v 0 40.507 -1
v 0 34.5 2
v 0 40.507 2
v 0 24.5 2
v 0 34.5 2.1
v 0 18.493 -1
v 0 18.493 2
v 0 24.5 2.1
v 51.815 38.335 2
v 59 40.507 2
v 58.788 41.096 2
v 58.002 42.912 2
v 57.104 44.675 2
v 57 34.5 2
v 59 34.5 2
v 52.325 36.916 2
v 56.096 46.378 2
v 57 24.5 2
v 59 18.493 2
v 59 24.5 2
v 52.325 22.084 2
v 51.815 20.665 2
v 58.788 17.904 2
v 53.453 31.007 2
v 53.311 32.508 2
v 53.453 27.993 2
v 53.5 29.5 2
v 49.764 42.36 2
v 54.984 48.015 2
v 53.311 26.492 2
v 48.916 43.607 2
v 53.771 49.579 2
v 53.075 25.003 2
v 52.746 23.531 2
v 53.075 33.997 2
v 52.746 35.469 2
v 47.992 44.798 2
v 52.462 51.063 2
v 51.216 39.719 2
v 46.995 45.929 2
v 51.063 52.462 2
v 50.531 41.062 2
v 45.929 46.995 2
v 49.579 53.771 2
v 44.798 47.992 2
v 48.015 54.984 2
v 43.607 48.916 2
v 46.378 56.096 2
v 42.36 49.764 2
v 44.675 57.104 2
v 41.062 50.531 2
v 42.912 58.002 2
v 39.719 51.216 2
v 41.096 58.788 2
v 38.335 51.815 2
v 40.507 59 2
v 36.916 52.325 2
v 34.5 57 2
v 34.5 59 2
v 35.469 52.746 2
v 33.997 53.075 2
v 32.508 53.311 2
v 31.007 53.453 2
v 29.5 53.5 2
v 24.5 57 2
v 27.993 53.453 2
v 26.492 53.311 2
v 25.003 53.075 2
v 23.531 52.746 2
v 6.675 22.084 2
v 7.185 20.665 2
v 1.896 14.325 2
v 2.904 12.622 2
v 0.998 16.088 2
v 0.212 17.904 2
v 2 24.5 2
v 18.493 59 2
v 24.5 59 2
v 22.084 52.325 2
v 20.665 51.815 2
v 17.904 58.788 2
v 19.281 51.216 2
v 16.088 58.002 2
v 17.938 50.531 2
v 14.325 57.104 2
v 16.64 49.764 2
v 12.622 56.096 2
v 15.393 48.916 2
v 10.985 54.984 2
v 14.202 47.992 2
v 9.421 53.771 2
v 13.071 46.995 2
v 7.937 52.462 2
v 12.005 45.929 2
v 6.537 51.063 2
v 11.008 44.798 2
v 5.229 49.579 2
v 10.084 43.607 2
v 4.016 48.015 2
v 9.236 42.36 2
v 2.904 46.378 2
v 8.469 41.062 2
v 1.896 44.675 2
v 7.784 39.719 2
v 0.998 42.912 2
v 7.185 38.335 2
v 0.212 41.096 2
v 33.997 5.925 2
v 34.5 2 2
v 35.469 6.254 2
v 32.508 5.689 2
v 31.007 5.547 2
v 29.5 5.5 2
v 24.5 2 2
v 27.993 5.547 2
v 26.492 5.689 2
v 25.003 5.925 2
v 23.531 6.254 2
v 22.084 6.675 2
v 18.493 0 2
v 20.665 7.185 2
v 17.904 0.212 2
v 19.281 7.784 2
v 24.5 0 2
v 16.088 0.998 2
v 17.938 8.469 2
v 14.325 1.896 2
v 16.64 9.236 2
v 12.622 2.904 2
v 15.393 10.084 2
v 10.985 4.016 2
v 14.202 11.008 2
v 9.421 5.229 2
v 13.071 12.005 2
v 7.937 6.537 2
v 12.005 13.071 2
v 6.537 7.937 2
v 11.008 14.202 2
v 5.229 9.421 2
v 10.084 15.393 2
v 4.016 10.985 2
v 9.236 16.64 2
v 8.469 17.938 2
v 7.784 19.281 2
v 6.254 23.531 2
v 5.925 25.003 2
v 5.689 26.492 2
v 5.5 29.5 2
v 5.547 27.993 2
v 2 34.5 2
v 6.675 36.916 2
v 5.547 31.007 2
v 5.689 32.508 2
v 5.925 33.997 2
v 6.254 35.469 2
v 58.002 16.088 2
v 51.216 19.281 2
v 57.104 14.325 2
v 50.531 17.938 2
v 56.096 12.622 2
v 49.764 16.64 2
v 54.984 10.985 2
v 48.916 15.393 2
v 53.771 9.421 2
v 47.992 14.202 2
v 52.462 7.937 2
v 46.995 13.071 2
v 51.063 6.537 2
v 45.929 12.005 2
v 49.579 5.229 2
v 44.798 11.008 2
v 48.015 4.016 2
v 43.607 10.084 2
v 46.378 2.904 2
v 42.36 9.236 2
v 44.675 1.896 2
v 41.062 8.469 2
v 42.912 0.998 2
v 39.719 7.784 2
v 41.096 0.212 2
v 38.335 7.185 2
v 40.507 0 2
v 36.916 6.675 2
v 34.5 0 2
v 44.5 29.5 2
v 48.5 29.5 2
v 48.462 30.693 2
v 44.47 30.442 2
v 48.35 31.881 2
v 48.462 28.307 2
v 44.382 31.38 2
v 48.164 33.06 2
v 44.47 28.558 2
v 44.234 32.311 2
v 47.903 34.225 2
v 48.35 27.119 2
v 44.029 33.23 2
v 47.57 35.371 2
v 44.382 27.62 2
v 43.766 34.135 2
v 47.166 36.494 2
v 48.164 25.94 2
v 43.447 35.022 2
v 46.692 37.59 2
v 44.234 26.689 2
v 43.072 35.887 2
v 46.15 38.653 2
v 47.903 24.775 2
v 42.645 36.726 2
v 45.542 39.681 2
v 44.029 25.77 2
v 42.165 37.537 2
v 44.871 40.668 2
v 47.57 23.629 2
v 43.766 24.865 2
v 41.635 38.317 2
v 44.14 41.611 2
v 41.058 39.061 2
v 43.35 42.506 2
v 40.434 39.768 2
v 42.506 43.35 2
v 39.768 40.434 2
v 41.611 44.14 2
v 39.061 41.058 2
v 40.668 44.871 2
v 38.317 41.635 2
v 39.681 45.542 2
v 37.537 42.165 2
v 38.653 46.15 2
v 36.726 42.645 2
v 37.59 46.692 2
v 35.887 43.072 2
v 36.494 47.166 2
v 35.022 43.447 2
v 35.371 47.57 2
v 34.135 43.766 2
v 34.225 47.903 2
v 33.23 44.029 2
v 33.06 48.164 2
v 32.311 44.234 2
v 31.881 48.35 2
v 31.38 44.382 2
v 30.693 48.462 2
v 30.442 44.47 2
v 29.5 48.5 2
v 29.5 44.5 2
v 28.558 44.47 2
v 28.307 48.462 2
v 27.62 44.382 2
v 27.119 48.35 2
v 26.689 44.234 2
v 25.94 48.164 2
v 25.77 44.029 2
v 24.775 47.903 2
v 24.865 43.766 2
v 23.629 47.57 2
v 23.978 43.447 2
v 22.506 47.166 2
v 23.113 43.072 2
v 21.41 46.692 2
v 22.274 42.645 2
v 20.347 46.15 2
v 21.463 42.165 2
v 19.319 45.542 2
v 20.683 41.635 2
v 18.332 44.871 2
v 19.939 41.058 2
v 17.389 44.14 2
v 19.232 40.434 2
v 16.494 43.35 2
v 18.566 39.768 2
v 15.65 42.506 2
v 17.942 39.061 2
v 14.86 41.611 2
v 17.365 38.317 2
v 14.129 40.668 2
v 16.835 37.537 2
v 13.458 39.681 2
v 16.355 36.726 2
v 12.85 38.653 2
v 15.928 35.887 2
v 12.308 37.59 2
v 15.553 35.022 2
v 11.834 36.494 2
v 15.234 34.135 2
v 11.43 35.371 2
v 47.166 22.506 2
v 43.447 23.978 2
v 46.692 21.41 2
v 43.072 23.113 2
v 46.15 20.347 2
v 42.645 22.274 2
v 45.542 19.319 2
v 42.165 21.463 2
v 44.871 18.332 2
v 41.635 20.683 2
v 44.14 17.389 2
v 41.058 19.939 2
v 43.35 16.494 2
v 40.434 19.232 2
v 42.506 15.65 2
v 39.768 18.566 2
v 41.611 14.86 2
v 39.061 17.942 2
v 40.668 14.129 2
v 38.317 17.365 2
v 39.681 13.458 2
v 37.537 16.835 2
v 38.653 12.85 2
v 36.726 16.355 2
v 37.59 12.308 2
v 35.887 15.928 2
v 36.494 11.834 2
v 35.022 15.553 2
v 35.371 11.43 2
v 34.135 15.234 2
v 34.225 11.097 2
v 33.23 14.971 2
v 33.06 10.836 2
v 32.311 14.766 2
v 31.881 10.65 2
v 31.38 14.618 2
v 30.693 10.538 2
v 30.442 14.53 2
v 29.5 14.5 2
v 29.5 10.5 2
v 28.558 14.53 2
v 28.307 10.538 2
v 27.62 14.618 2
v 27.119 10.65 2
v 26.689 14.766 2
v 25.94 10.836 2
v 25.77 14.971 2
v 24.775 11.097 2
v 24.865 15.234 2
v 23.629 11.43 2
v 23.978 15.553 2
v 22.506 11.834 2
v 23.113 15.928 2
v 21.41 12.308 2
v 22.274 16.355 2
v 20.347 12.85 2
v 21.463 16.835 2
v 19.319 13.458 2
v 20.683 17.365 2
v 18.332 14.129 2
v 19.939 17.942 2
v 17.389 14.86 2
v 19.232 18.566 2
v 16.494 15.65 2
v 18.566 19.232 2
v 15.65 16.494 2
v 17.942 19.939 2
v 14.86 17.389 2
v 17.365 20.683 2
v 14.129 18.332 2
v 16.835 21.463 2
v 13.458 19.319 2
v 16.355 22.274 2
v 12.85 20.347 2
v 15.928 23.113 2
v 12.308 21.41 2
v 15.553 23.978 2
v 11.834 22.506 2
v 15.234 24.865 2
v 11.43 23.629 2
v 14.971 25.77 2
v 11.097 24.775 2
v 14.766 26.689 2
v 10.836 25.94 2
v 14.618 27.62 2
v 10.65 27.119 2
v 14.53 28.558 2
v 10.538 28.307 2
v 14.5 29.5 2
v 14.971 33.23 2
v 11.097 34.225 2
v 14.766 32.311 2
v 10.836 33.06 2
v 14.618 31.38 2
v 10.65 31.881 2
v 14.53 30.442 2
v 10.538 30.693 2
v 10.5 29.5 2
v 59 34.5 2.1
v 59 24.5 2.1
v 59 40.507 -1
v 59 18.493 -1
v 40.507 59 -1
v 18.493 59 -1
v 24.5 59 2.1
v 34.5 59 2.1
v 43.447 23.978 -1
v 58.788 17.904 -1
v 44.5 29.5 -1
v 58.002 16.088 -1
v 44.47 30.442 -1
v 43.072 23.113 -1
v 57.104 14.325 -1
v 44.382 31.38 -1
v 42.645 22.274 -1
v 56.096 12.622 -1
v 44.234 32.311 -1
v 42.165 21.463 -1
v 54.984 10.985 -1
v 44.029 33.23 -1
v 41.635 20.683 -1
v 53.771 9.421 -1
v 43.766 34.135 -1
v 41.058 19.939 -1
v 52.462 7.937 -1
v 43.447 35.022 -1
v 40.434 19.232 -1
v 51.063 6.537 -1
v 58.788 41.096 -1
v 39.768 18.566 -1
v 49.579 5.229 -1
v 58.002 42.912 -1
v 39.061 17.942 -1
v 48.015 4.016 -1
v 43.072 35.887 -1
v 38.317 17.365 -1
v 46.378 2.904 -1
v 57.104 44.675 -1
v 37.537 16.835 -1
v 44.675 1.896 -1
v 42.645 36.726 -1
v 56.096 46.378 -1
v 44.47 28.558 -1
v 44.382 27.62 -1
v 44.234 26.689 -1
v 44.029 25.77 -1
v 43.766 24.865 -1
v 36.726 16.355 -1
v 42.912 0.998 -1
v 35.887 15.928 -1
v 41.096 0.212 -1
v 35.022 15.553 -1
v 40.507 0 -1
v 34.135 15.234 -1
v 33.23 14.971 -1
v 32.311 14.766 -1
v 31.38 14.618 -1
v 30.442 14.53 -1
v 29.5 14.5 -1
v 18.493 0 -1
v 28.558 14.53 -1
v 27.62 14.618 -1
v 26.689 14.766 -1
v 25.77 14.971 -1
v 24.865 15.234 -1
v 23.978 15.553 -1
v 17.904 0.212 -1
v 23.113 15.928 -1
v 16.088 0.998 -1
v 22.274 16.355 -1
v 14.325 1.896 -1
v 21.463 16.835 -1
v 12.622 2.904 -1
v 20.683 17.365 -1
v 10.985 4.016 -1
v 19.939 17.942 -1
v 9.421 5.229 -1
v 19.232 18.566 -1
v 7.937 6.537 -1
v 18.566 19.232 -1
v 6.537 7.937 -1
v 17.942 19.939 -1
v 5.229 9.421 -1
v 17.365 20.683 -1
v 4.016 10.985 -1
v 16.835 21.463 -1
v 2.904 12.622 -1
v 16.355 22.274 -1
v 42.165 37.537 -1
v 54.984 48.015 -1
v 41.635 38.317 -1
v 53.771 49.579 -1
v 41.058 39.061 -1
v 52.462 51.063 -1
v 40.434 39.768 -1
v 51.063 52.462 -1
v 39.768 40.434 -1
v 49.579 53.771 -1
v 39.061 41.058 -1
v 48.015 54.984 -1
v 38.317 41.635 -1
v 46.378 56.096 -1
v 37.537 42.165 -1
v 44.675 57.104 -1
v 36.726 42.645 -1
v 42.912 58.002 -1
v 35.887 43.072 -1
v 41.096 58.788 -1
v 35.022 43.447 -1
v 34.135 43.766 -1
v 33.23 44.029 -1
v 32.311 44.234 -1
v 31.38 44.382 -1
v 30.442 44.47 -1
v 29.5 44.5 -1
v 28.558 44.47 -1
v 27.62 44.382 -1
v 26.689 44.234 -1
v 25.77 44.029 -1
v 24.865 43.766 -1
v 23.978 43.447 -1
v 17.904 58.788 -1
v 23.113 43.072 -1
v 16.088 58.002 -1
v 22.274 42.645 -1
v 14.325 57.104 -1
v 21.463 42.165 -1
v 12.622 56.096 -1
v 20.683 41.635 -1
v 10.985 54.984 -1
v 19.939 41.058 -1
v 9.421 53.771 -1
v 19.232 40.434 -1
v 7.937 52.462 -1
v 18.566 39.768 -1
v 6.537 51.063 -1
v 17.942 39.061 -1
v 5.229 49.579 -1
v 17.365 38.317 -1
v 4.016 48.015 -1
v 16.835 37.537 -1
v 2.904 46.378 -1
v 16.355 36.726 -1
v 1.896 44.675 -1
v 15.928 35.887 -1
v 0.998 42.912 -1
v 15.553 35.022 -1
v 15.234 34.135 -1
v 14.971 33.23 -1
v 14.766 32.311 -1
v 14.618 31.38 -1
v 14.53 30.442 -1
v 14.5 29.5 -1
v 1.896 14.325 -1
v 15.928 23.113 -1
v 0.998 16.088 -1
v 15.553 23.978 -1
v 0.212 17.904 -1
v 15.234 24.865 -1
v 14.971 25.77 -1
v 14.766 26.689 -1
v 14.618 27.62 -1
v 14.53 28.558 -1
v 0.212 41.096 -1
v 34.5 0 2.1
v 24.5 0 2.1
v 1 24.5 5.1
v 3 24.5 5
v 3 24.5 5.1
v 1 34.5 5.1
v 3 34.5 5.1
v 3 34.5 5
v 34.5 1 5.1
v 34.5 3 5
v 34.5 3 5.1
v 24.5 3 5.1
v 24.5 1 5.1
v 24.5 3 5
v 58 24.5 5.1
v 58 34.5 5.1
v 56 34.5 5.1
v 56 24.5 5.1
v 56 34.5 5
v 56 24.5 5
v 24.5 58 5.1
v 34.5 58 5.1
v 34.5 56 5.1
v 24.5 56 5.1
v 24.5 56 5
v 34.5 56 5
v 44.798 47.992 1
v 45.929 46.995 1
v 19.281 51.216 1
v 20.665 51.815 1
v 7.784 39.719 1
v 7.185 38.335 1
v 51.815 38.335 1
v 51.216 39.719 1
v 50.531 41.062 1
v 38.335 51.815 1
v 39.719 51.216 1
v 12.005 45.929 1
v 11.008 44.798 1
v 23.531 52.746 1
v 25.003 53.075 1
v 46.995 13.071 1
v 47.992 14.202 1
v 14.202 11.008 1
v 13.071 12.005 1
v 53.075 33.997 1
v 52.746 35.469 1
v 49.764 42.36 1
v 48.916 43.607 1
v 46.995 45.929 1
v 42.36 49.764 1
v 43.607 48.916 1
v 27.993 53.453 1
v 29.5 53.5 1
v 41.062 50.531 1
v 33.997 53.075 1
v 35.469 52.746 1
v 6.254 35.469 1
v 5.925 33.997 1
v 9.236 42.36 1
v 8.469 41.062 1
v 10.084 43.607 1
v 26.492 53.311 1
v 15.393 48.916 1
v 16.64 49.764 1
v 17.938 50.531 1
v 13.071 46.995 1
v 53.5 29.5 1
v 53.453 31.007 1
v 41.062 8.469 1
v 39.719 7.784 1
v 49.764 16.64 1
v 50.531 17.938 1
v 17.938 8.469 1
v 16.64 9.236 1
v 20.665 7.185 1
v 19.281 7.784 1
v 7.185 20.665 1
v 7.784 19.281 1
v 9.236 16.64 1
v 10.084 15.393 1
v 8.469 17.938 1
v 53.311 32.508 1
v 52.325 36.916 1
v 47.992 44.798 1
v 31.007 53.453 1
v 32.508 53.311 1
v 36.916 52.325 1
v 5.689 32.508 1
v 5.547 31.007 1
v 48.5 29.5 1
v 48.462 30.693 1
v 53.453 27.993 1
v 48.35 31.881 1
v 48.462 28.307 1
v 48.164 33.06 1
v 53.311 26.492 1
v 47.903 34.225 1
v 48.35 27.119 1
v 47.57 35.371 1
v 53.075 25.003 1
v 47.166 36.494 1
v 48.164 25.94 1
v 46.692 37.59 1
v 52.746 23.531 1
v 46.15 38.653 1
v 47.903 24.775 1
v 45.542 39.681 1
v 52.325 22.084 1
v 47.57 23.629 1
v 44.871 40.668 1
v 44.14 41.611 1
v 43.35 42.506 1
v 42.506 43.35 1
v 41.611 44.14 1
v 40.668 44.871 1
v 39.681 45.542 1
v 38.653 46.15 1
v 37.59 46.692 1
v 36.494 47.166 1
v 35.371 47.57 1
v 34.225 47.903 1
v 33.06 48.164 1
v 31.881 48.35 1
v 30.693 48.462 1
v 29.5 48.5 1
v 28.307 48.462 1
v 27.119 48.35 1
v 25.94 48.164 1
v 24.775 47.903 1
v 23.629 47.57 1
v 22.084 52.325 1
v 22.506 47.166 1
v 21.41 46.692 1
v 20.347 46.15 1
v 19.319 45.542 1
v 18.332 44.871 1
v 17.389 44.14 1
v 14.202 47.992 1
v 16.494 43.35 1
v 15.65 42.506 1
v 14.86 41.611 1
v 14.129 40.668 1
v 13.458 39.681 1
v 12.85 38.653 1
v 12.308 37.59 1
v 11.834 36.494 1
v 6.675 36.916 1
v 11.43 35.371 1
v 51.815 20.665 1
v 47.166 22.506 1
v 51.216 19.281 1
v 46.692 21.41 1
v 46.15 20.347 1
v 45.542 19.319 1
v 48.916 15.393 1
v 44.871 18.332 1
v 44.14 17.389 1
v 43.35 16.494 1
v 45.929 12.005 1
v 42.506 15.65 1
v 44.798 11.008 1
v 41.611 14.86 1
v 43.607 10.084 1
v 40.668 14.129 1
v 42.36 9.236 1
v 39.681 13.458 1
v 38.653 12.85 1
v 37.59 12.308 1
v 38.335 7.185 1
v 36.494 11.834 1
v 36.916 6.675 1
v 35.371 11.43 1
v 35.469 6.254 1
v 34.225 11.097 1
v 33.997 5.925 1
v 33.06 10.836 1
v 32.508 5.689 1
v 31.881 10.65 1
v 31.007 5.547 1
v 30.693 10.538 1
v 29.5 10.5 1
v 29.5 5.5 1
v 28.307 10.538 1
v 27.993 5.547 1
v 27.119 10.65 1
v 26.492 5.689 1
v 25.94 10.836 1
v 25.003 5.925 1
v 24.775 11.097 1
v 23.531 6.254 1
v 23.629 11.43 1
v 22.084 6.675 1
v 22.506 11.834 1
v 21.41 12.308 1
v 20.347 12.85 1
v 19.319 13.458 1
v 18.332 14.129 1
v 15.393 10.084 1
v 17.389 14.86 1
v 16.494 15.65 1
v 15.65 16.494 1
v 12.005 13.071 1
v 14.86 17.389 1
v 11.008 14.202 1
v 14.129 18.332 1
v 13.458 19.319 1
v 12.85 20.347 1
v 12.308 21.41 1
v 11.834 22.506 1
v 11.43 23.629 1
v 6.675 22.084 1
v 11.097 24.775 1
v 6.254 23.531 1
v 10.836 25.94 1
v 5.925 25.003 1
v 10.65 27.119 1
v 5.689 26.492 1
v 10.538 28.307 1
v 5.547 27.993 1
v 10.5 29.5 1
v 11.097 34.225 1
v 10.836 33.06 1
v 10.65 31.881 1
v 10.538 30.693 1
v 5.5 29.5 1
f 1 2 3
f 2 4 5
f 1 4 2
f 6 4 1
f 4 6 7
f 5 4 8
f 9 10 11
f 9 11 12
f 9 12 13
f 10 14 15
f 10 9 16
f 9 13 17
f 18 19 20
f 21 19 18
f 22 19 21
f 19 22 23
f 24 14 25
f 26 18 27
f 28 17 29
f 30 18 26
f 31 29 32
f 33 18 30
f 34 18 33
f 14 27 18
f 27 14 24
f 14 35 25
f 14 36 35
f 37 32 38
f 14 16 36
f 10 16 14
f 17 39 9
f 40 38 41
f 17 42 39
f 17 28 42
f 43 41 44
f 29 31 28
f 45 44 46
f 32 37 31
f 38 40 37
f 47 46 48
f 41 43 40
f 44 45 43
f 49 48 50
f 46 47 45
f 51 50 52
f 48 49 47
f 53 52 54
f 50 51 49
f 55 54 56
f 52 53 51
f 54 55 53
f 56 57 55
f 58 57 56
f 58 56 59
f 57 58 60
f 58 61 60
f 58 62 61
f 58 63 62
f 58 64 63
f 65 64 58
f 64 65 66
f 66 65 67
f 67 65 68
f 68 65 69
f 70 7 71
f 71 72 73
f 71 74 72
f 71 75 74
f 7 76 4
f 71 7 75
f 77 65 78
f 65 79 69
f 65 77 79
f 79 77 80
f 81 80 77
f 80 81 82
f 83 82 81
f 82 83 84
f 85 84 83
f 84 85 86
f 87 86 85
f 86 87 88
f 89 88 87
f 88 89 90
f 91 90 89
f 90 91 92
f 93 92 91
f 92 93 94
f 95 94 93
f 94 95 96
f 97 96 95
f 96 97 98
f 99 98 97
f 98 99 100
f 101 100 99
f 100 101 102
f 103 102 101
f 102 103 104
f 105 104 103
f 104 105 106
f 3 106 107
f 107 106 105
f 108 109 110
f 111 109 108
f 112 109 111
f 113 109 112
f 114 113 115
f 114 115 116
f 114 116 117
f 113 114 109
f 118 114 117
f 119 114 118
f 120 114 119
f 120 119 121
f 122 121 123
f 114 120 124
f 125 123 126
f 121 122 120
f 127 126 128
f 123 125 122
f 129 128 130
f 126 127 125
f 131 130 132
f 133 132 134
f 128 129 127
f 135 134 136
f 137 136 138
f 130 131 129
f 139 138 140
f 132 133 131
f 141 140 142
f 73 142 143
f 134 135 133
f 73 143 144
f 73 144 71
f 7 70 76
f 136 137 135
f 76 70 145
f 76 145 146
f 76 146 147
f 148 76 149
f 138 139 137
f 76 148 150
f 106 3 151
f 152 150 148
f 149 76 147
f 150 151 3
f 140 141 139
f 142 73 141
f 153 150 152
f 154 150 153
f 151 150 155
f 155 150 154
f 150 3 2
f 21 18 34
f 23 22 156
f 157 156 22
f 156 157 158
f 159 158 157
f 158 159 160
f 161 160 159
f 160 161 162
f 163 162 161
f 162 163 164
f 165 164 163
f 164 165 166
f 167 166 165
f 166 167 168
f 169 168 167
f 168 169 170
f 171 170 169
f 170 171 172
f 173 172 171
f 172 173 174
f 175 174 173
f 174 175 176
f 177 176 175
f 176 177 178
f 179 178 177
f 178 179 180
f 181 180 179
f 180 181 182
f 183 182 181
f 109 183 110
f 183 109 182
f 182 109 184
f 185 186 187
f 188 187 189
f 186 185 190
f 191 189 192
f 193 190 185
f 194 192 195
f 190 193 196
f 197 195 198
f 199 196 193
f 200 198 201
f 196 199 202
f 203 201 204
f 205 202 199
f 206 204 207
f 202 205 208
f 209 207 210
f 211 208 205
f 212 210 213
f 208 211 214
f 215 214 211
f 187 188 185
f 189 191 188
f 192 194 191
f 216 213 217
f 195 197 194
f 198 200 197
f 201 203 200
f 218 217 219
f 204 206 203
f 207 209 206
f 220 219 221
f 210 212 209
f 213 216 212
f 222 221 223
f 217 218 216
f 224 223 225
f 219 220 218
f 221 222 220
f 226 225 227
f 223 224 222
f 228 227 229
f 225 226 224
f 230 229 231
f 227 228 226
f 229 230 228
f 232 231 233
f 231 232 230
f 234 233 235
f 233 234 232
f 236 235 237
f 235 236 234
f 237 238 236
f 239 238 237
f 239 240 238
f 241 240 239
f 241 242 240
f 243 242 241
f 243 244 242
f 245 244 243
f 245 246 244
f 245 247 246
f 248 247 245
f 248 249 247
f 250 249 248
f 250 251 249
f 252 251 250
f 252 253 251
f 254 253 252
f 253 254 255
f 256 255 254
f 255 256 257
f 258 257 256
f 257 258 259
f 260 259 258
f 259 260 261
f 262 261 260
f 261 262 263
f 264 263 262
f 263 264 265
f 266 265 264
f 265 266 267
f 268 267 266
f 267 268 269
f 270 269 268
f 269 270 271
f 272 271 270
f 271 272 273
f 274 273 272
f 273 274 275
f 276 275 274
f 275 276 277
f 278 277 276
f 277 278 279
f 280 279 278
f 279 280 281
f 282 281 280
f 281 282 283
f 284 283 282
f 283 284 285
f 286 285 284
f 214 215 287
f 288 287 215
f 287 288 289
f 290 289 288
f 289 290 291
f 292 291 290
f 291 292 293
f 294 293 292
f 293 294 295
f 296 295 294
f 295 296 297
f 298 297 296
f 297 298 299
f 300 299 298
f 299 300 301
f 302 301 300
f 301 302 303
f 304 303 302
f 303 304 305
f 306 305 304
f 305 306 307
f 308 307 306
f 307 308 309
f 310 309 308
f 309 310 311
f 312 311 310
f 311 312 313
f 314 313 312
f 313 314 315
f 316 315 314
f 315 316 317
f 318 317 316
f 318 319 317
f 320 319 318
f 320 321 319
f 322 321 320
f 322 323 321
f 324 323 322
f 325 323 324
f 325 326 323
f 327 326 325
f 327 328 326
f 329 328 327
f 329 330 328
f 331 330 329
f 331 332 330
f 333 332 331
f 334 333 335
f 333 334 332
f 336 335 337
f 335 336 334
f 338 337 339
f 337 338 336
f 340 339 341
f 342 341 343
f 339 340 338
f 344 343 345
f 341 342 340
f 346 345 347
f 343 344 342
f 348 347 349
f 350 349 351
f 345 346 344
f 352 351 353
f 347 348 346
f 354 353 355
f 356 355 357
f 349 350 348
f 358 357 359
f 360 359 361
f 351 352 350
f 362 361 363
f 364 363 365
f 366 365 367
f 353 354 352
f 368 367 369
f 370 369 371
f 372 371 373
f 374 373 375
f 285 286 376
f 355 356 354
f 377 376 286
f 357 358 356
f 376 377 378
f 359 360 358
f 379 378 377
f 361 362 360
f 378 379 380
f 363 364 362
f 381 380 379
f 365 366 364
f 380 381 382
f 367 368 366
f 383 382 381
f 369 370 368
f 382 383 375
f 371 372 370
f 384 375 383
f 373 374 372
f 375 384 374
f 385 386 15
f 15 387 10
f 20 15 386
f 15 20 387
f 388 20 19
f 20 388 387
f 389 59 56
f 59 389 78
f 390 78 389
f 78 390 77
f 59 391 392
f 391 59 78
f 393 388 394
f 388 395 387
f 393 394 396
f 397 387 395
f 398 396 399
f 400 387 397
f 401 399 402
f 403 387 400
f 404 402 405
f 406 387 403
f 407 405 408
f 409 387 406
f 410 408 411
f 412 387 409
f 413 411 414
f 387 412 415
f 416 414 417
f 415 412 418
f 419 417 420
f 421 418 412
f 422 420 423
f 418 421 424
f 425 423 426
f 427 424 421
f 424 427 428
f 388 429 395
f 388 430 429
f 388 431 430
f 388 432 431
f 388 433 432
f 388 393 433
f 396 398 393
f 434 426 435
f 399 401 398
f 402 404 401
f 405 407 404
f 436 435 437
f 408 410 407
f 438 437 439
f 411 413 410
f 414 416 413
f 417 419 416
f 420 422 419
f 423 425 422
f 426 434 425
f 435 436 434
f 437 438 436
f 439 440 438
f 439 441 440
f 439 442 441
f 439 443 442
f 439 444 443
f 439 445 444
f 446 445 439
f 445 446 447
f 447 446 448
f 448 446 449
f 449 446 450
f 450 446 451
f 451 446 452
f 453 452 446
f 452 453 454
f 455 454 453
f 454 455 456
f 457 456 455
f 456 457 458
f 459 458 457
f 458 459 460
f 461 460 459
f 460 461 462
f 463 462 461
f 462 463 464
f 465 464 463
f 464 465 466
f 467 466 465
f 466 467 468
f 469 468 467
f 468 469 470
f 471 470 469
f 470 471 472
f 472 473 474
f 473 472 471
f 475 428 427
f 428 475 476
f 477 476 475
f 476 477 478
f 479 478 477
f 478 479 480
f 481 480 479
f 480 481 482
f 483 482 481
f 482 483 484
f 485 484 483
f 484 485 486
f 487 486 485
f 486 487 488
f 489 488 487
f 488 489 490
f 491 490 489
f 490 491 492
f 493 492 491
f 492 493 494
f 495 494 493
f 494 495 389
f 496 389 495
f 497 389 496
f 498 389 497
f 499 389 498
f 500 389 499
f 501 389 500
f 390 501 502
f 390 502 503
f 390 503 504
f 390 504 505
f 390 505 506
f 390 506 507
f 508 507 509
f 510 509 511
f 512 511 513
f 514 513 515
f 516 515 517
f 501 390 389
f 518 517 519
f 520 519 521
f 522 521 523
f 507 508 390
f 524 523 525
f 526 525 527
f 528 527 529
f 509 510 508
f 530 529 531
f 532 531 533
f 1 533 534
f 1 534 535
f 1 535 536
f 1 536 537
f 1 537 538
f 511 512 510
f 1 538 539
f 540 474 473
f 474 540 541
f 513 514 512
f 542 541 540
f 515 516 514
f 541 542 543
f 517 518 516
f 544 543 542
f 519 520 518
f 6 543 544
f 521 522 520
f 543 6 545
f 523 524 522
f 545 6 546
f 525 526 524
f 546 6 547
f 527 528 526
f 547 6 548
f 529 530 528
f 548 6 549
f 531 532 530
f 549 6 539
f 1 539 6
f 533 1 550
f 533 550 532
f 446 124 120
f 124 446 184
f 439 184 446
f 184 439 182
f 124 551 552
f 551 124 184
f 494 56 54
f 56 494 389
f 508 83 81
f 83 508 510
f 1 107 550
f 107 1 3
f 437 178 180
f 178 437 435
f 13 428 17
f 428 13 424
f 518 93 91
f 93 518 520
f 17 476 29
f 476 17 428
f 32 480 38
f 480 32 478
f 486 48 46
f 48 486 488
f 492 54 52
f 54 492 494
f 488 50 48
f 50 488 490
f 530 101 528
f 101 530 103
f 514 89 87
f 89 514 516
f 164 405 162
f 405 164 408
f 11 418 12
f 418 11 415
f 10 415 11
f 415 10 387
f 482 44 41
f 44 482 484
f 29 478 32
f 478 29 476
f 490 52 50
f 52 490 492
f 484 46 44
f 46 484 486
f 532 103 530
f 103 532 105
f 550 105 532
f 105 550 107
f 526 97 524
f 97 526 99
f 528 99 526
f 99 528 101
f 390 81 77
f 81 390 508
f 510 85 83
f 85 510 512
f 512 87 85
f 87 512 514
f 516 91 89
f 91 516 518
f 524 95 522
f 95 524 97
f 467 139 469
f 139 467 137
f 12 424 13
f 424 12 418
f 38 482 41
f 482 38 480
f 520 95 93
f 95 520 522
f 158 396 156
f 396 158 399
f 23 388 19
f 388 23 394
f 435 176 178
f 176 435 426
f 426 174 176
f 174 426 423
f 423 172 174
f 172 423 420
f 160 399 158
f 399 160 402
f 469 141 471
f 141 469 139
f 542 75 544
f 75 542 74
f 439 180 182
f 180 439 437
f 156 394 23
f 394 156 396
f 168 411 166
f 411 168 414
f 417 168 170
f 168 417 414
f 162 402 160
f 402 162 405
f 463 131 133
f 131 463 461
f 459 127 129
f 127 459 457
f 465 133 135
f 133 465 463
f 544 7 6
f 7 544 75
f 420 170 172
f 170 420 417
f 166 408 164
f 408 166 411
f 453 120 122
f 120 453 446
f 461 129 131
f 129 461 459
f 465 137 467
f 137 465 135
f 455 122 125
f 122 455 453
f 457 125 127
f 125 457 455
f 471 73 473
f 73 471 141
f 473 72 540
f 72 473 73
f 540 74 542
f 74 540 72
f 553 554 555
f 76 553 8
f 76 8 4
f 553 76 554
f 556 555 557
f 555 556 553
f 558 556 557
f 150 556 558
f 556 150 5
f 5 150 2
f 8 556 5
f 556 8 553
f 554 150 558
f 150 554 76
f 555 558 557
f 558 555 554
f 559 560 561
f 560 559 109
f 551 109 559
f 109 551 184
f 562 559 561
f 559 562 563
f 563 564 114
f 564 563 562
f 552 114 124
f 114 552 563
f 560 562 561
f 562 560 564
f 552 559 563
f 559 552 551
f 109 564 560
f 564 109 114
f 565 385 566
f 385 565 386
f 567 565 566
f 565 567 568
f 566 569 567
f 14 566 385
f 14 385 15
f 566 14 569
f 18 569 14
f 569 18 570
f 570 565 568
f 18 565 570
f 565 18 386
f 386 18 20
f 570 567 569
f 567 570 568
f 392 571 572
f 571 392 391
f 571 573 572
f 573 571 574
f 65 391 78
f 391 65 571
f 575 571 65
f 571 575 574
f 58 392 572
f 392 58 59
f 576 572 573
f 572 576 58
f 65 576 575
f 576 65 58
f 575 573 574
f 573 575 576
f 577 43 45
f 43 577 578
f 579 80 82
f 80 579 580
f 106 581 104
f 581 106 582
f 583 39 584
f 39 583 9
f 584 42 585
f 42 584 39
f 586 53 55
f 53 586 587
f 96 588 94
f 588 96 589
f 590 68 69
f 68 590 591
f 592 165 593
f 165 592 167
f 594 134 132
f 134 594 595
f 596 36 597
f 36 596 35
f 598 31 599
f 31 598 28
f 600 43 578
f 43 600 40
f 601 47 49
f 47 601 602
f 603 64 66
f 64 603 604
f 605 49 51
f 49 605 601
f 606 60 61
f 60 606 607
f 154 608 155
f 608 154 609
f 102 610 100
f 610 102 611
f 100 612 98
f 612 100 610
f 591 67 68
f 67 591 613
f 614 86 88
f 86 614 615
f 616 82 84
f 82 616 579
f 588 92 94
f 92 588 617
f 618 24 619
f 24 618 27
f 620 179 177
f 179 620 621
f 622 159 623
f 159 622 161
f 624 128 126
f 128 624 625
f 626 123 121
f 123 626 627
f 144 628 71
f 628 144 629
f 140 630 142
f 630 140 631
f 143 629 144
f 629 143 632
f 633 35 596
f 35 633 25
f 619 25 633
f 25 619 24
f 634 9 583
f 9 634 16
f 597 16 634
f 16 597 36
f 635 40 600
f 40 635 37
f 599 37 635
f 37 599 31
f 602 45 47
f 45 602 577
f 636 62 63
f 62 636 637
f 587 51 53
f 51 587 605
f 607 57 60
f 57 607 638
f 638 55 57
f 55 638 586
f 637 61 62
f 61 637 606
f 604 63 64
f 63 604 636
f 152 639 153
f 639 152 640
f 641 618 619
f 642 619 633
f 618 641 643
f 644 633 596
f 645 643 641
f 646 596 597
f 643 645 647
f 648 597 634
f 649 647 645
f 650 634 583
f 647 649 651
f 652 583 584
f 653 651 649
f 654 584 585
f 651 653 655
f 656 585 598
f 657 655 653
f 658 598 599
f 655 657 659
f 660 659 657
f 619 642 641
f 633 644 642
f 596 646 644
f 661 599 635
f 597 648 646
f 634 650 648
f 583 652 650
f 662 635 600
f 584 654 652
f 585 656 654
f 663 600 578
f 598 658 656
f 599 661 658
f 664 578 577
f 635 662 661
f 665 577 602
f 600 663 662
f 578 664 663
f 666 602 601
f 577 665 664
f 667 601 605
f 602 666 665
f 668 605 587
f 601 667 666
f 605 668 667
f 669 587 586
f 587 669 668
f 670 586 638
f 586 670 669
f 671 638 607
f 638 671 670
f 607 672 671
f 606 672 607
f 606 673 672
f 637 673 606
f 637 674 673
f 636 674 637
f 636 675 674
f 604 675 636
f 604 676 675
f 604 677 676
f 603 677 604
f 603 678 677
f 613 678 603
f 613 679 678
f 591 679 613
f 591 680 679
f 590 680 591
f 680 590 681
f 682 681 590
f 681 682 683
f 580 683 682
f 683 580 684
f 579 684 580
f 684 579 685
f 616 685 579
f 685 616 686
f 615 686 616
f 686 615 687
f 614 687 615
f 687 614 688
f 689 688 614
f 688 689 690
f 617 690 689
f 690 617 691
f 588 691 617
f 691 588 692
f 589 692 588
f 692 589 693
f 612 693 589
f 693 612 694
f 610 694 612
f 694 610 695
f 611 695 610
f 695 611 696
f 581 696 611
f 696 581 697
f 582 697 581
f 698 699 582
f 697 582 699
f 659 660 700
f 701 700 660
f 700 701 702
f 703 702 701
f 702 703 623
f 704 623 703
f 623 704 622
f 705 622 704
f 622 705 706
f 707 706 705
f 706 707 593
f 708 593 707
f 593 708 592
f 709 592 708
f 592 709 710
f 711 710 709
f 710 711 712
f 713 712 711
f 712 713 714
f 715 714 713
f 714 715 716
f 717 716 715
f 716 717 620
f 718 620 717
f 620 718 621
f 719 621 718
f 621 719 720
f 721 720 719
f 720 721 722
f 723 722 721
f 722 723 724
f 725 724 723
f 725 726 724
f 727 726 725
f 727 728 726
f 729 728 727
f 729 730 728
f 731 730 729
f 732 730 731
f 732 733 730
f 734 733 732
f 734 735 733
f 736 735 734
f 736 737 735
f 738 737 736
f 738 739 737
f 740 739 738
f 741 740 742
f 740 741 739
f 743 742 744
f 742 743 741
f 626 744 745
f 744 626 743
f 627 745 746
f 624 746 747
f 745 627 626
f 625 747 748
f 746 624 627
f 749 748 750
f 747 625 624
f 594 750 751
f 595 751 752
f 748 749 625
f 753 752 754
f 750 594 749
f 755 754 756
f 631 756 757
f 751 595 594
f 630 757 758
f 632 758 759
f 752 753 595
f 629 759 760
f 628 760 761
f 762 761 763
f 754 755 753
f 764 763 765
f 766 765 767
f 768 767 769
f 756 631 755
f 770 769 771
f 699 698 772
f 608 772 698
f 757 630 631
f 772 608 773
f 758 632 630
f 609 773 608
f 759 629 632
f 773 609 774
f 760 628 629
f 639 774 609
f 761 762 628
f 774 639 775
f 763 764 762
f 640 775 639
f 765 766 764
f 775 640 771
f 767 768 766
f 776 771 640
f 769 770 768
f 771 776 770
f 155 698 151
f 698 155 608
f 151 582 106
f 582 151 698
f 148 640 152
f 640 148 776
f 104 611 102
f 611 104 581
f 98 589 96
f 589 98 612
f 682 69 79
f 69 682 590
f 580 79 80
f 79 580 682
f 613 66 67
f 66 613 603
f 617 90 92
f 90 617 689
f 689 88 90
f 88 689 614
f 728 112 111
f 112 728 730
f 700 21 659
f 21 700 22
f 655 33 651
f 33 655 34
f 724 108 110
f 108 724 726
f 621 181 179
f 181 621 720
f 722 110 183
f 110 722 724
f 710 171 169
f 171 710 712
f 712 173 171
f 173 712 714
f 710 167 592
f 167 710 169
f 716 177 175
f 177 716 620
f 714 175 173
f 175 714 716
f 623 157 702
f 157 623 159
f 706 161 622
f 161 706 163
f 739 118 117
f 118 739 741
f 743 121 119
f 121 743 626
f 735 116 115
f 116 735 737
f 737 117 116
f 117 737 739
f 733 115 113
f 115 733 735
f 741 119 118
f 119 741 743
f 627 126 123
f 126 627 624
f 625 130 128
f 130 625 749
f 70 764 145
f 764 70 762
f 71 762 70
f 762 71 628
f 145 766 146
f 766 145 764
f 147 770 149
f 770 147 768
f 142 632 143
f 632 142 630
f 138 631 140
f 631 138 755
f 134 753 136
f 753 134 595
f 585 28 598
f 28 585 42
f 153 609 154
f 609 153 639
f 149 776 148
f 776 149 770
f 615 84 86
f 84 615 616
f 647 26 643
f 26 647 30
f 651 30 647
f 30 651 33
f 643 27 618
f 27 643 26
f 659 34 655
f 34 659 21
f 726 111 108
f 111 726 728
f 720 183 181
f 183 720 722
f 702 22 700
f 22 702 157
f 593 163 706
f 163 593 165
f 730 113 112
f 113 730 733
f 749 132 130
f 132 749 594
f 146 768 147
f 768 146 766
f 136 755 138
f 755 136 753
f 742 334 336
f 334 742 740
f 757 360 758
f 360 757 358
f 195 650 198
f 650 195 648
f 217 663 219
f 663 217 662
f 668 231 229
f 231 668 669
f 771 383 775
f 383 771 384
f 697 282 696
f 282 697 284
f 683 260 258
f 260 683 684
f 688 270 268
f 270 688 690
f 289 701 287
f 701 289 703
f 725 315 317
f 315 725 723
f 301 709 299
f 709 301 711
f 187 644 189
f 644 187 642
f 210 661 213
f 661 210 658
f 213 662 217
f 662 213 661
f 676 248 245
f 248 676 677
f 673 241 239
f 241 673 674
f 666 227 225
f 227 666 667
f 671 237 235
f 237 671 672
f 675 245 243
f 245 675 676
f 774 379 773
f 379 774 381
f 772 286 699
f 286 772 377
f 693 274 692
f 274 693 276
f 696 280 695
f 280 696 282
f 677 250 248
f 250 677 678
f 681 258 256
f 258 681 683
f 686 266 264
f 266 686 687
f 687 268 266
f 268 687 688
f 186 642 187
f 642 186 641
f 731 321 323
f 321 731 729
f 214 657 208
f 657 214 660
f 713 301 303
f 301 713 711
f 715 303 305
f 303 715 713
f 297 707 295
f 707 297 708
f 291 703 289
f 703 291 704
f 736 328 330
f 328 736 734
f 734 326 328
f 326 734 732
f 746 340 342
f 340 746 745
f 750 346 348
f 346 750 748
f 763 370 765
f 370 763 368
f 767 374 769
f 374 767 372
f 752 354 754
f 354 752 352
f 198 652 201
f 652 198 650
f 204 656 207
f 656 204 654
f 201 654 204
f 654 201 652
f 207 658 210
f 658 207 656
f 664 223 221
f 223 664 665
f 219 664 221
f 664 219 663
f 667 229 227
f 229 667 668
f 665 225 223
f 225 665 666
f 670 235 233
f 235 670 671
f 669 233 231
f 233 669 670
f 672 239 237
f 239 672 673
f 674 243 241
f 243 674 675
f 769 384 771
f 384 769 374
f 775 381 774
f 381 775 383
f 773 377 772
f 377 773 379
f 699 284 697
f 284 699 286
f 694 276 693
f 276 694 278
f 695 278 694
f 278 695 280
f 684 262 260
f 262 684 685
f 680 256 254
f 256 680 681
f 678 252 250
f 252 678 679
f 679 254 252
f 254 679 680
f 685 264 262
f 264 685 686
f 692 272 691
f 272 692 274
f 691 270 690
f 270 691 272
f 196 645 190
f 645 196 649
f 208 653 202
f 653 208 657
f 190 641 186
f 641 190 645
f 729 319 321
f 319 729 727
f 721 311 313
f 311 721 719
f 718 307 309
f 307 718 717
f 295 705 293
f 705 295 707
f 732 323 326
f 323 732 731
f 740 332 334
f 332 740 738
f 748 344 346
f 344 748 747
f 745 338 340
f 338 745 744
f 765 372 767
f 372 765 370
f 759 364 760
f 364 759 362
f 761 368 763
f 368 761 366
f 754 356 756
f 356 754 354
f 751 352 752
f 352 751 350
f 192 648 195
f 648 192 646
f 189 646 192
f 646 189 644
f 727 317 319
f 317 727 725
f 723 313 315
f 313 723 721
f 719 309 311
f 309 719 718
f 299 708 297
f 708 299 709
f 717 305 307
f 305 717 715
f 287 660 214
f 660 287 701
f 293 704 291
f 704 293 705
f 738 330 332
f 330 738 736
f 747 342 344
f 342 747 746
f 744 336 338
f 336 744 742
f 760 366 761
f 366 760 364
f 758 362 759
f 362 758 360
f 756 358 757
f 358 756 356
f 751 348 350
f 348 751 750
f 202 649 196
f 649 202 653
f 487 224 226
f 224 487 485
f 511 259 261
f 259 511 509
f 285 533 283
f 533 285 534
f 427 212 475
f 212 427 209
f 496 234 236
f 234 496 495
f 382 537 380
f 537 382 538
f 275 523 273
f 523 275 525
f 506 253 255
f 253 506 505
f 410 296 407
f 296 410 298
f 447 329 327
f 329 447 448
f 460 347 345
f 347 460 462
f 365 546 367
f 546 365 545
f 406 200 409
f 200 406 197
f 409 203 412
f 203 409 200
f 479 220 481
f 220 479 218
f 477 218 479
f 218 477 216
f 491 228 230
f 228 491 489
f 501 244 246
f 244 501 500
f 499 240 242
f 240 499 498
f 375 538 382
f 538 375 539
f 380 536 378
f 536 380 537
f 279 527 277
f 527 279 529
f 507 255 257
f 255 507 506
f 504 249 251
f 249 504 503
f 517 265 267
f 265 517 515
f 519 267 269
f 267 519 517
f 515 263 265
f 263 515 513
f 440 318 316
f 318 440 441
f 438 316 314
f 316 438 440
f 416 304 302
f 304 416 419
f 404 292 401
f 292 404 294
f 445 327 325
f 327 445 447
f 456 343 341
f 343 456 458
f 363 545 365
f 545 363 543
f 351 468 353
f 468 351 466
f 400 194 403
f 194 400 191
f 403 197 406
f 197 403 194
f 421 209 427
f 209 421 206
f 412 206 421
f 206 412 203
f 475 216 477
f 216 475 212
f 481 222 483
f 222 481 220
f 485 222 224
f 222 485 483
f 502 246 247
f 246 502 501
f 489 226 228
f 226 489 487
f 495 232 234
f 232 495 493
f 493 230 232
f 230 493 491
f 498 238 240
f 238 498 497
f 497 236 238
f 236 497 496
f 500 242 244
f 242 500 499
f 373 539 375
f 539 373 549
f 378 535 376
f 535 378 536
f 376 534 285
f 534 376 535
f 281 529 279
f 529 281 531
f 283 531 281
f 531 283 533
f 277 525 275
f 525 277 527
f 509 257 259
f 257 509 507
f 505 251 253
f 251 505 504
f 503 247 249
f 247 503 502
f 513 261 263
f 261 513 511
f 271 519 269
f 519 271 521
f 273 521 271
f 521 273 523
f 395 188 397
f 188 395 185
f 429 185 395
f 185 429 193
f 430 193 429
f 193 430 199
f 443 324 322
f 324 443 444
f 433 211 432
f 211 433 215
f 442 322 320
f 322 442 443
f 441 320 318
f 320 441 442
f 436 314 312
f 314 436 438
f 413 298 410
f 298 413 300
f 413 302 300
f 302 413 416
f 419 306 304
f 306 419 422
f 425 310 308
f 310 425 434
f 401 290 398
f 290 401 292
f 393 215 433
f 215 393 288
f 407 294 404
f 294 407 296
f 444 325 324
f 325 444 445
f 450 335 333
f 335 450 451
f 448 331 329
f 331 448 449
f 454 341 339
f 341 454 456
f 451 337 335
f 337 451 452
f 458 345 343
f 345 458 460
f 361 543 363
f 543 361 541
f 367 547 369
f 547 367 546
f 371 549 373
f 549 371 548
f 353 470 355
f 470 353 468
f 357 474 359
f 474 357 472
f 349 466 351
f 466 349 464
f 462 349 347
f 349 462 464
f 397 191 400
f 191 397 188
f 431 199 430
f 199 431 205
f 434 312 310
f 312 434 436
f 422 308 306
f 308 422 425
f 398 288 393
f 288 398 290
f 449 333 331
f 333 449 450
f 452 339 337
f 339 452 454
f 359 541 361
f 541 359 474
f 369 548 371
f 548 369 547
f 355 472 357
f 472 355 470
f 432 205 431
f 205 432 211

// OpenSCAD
$fn = 100;

w = 59;
r = 30 / 2;
l = 10;

t = 2;

r1 = 38 / 2;
r2 = 48 / 2;

difference()
{
    union()
    {
        intersection()
        {
            translate([0, 0, -1]) cube([w, w, t + 1], false);
            translate([w/2, w/2, -1]) cylinder(t + 2, w/2 + 2, w/2 + 2);
        }
        hull()
        {
            translate([0, w/2 - l/2, t]) cube([t, l, 0.1], false);
            translate([1, w/2 - l/2, t + 3]) cube([t, l, 0.1], false);
        }
        rotate([0, 0, 90])
        translate([0, -w, 0])
        hull()
        {
            translate([0, w/2 - l/2, t]) cube([t, l, 0.1], false);
            translate([1, w/2 - l/2, t + 3]) cube([t, l, 0.1], false);
        }
        rotate([0, 0, 180])
        translate([-w, -w, 0])
        hull()
        {
            translate([0, w/2 - l/2, t]) cube([t, l, 0.1], false);
            translate([1, w/2 - l/2, t + 3]) cube([t, l, 0.1], false);
        }
        rotate([0, 0, 270])
        translate([-w, 0, 0])
        hull()
        {
            translate([0, w/2 - l/2, t]) cube([t, l, 0.1], false);
            translate([1, w/2 - l/2, t + 3]) cube([t, l, 0.1], false);
        }
    }
    translate([w/2, w/2, -2]) cylinder(r + 3, r, r);
    difference()
    {
        translate([w/2, w/2, 1]) cylinder(t, r2, r2);
        translate([w/2, w/2, 1]) cylinder(t, r1, r1);
    }
}
